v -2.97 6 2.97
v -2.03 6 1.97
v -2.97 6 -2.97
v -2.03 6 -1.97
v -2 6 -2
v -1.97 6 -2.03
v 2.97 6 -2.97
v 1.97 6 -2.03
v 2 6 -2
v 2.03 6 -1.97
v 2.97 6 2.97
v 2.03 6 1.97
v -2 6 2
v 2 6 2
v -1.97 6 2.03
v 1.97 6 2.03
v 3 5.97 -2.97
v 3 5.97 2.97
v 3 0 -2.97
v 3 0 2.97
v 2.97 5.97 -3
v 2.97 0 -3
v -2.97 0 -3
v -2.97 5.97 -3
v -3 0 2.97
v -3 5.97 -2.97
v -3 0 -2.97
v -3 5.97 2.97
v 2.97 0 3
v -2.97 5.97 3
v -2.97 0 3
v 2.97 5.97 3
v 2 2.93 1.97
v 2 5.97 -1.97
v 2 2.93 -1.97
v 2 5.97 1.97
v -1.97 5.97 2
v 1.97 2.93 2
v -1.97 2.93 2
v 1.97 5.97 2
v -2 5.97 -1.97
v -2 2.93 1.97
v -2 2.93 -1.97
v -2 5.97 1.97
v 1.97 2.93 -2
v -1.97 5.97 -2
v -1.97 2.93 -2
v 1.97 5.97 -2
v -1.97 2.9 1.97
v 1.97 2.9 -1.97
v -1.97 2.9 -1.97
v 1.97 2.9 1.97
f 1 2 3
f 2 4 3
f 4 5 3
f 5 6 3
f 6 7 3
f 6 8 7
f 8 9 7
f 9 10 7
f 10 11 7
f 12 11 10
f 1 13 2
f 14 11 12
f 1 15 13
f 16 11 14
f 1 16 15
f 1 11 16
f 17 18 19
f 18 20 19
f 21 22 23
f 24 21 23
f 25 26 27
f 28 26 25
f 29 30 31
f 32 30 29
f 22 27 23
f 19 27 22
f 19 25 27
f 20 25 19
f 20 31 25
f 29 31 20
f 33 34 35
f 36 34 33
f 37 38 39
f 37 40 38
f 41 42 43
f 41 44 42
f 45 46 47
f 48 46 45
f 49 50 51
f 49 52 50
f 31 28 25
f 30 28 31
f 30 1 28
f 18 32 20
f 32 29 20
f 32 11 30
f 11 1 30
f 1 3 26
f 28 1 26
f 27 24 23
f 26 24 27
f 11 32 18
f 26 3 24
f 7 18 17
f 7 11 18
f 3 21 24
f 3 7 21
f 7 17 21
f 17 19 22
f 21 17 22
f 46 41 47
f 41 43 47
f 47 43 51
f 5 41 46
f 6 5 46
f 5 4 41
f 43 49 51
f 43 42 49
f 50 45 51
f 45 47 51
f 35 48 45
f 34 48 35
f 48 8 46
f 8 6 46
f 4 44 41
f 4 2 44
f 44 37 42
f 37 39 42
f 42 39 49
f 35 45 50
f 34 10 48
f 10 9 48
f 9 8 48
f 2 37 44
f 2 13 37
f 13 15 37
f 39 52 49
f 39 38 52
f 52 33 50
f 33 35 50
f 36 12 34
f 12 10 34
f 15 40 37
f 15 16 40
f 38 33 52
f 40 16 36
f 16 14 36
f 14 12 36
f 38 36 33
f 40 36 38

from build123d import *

# Parameters (mm, degrees)
ESQUISSE2_W             = 6
ESQUISSE2_H             = 6
BOSS_EXTRU_1_DEPTH      = 6
ESQUISSE4_W             = 4
ESQUISSE4_H             = 4
ENL_V_MAT_EXTRU_1_DEPTH = 3.1
CHANFREIN1_SIZE         = 0.03


with BuildPart() as part:
    # Esquisse2 → Boss.-Extru.1 (new body)
    with BuildSketch(Plane(origin=(0, 0, 0), x_dir=(1, 0, 0), z_dir=(0, 1, 0))):
        Rectangle(ESQUISSE2_W, ESQUISSE2_H)
    extrude(amount=BOSS_EXTRU_1_DEPTH)

    # Esquisse4 → Enlèv. mat.-Extru.1 (cut)
    with BuildSketch(Plane(origin=(0, 6, 0), x_dir=(1, 0, 0), z_dir=(0, 1, 0))):
        Rectangle(ESQUISSE4_W, ESQUISSE4_H)
    extrude(amount=-ENL_V_MAT_EXTRU_1_DEPTH, mode=Mode.SUBTRACT)

    # Chanfrein1
    chanfrein1_edges = [part.edges().sort_by_distance(p)[0] for p in [
        (-3, 6, 0),
        (2, 2.9, 0),
        (2, 4.45, -2),
        (0, 6, 3),
        (0, 2.9, 2),
        (2, 4.45, 2),
        (-2, 2.9, 0),
        (-2, 4.45, 2),
        (0, 2.9, -2),
        (-2, 4.45, -2),
        (2, 6, 0),
        (0, 6, -2),
        (-2, 6, 0),
        (0, 6, 2),
        (3, 6, 0),
        (3, 3, 3),
        (-3, 3, 3),
        (-3, 3, -3),
        (3, 3, -3),
        (0, 6, -3),
    ]]
    chamfer(chanfrein1_edges, length=CHANFREIN1_SIZE)


solid = part.part
